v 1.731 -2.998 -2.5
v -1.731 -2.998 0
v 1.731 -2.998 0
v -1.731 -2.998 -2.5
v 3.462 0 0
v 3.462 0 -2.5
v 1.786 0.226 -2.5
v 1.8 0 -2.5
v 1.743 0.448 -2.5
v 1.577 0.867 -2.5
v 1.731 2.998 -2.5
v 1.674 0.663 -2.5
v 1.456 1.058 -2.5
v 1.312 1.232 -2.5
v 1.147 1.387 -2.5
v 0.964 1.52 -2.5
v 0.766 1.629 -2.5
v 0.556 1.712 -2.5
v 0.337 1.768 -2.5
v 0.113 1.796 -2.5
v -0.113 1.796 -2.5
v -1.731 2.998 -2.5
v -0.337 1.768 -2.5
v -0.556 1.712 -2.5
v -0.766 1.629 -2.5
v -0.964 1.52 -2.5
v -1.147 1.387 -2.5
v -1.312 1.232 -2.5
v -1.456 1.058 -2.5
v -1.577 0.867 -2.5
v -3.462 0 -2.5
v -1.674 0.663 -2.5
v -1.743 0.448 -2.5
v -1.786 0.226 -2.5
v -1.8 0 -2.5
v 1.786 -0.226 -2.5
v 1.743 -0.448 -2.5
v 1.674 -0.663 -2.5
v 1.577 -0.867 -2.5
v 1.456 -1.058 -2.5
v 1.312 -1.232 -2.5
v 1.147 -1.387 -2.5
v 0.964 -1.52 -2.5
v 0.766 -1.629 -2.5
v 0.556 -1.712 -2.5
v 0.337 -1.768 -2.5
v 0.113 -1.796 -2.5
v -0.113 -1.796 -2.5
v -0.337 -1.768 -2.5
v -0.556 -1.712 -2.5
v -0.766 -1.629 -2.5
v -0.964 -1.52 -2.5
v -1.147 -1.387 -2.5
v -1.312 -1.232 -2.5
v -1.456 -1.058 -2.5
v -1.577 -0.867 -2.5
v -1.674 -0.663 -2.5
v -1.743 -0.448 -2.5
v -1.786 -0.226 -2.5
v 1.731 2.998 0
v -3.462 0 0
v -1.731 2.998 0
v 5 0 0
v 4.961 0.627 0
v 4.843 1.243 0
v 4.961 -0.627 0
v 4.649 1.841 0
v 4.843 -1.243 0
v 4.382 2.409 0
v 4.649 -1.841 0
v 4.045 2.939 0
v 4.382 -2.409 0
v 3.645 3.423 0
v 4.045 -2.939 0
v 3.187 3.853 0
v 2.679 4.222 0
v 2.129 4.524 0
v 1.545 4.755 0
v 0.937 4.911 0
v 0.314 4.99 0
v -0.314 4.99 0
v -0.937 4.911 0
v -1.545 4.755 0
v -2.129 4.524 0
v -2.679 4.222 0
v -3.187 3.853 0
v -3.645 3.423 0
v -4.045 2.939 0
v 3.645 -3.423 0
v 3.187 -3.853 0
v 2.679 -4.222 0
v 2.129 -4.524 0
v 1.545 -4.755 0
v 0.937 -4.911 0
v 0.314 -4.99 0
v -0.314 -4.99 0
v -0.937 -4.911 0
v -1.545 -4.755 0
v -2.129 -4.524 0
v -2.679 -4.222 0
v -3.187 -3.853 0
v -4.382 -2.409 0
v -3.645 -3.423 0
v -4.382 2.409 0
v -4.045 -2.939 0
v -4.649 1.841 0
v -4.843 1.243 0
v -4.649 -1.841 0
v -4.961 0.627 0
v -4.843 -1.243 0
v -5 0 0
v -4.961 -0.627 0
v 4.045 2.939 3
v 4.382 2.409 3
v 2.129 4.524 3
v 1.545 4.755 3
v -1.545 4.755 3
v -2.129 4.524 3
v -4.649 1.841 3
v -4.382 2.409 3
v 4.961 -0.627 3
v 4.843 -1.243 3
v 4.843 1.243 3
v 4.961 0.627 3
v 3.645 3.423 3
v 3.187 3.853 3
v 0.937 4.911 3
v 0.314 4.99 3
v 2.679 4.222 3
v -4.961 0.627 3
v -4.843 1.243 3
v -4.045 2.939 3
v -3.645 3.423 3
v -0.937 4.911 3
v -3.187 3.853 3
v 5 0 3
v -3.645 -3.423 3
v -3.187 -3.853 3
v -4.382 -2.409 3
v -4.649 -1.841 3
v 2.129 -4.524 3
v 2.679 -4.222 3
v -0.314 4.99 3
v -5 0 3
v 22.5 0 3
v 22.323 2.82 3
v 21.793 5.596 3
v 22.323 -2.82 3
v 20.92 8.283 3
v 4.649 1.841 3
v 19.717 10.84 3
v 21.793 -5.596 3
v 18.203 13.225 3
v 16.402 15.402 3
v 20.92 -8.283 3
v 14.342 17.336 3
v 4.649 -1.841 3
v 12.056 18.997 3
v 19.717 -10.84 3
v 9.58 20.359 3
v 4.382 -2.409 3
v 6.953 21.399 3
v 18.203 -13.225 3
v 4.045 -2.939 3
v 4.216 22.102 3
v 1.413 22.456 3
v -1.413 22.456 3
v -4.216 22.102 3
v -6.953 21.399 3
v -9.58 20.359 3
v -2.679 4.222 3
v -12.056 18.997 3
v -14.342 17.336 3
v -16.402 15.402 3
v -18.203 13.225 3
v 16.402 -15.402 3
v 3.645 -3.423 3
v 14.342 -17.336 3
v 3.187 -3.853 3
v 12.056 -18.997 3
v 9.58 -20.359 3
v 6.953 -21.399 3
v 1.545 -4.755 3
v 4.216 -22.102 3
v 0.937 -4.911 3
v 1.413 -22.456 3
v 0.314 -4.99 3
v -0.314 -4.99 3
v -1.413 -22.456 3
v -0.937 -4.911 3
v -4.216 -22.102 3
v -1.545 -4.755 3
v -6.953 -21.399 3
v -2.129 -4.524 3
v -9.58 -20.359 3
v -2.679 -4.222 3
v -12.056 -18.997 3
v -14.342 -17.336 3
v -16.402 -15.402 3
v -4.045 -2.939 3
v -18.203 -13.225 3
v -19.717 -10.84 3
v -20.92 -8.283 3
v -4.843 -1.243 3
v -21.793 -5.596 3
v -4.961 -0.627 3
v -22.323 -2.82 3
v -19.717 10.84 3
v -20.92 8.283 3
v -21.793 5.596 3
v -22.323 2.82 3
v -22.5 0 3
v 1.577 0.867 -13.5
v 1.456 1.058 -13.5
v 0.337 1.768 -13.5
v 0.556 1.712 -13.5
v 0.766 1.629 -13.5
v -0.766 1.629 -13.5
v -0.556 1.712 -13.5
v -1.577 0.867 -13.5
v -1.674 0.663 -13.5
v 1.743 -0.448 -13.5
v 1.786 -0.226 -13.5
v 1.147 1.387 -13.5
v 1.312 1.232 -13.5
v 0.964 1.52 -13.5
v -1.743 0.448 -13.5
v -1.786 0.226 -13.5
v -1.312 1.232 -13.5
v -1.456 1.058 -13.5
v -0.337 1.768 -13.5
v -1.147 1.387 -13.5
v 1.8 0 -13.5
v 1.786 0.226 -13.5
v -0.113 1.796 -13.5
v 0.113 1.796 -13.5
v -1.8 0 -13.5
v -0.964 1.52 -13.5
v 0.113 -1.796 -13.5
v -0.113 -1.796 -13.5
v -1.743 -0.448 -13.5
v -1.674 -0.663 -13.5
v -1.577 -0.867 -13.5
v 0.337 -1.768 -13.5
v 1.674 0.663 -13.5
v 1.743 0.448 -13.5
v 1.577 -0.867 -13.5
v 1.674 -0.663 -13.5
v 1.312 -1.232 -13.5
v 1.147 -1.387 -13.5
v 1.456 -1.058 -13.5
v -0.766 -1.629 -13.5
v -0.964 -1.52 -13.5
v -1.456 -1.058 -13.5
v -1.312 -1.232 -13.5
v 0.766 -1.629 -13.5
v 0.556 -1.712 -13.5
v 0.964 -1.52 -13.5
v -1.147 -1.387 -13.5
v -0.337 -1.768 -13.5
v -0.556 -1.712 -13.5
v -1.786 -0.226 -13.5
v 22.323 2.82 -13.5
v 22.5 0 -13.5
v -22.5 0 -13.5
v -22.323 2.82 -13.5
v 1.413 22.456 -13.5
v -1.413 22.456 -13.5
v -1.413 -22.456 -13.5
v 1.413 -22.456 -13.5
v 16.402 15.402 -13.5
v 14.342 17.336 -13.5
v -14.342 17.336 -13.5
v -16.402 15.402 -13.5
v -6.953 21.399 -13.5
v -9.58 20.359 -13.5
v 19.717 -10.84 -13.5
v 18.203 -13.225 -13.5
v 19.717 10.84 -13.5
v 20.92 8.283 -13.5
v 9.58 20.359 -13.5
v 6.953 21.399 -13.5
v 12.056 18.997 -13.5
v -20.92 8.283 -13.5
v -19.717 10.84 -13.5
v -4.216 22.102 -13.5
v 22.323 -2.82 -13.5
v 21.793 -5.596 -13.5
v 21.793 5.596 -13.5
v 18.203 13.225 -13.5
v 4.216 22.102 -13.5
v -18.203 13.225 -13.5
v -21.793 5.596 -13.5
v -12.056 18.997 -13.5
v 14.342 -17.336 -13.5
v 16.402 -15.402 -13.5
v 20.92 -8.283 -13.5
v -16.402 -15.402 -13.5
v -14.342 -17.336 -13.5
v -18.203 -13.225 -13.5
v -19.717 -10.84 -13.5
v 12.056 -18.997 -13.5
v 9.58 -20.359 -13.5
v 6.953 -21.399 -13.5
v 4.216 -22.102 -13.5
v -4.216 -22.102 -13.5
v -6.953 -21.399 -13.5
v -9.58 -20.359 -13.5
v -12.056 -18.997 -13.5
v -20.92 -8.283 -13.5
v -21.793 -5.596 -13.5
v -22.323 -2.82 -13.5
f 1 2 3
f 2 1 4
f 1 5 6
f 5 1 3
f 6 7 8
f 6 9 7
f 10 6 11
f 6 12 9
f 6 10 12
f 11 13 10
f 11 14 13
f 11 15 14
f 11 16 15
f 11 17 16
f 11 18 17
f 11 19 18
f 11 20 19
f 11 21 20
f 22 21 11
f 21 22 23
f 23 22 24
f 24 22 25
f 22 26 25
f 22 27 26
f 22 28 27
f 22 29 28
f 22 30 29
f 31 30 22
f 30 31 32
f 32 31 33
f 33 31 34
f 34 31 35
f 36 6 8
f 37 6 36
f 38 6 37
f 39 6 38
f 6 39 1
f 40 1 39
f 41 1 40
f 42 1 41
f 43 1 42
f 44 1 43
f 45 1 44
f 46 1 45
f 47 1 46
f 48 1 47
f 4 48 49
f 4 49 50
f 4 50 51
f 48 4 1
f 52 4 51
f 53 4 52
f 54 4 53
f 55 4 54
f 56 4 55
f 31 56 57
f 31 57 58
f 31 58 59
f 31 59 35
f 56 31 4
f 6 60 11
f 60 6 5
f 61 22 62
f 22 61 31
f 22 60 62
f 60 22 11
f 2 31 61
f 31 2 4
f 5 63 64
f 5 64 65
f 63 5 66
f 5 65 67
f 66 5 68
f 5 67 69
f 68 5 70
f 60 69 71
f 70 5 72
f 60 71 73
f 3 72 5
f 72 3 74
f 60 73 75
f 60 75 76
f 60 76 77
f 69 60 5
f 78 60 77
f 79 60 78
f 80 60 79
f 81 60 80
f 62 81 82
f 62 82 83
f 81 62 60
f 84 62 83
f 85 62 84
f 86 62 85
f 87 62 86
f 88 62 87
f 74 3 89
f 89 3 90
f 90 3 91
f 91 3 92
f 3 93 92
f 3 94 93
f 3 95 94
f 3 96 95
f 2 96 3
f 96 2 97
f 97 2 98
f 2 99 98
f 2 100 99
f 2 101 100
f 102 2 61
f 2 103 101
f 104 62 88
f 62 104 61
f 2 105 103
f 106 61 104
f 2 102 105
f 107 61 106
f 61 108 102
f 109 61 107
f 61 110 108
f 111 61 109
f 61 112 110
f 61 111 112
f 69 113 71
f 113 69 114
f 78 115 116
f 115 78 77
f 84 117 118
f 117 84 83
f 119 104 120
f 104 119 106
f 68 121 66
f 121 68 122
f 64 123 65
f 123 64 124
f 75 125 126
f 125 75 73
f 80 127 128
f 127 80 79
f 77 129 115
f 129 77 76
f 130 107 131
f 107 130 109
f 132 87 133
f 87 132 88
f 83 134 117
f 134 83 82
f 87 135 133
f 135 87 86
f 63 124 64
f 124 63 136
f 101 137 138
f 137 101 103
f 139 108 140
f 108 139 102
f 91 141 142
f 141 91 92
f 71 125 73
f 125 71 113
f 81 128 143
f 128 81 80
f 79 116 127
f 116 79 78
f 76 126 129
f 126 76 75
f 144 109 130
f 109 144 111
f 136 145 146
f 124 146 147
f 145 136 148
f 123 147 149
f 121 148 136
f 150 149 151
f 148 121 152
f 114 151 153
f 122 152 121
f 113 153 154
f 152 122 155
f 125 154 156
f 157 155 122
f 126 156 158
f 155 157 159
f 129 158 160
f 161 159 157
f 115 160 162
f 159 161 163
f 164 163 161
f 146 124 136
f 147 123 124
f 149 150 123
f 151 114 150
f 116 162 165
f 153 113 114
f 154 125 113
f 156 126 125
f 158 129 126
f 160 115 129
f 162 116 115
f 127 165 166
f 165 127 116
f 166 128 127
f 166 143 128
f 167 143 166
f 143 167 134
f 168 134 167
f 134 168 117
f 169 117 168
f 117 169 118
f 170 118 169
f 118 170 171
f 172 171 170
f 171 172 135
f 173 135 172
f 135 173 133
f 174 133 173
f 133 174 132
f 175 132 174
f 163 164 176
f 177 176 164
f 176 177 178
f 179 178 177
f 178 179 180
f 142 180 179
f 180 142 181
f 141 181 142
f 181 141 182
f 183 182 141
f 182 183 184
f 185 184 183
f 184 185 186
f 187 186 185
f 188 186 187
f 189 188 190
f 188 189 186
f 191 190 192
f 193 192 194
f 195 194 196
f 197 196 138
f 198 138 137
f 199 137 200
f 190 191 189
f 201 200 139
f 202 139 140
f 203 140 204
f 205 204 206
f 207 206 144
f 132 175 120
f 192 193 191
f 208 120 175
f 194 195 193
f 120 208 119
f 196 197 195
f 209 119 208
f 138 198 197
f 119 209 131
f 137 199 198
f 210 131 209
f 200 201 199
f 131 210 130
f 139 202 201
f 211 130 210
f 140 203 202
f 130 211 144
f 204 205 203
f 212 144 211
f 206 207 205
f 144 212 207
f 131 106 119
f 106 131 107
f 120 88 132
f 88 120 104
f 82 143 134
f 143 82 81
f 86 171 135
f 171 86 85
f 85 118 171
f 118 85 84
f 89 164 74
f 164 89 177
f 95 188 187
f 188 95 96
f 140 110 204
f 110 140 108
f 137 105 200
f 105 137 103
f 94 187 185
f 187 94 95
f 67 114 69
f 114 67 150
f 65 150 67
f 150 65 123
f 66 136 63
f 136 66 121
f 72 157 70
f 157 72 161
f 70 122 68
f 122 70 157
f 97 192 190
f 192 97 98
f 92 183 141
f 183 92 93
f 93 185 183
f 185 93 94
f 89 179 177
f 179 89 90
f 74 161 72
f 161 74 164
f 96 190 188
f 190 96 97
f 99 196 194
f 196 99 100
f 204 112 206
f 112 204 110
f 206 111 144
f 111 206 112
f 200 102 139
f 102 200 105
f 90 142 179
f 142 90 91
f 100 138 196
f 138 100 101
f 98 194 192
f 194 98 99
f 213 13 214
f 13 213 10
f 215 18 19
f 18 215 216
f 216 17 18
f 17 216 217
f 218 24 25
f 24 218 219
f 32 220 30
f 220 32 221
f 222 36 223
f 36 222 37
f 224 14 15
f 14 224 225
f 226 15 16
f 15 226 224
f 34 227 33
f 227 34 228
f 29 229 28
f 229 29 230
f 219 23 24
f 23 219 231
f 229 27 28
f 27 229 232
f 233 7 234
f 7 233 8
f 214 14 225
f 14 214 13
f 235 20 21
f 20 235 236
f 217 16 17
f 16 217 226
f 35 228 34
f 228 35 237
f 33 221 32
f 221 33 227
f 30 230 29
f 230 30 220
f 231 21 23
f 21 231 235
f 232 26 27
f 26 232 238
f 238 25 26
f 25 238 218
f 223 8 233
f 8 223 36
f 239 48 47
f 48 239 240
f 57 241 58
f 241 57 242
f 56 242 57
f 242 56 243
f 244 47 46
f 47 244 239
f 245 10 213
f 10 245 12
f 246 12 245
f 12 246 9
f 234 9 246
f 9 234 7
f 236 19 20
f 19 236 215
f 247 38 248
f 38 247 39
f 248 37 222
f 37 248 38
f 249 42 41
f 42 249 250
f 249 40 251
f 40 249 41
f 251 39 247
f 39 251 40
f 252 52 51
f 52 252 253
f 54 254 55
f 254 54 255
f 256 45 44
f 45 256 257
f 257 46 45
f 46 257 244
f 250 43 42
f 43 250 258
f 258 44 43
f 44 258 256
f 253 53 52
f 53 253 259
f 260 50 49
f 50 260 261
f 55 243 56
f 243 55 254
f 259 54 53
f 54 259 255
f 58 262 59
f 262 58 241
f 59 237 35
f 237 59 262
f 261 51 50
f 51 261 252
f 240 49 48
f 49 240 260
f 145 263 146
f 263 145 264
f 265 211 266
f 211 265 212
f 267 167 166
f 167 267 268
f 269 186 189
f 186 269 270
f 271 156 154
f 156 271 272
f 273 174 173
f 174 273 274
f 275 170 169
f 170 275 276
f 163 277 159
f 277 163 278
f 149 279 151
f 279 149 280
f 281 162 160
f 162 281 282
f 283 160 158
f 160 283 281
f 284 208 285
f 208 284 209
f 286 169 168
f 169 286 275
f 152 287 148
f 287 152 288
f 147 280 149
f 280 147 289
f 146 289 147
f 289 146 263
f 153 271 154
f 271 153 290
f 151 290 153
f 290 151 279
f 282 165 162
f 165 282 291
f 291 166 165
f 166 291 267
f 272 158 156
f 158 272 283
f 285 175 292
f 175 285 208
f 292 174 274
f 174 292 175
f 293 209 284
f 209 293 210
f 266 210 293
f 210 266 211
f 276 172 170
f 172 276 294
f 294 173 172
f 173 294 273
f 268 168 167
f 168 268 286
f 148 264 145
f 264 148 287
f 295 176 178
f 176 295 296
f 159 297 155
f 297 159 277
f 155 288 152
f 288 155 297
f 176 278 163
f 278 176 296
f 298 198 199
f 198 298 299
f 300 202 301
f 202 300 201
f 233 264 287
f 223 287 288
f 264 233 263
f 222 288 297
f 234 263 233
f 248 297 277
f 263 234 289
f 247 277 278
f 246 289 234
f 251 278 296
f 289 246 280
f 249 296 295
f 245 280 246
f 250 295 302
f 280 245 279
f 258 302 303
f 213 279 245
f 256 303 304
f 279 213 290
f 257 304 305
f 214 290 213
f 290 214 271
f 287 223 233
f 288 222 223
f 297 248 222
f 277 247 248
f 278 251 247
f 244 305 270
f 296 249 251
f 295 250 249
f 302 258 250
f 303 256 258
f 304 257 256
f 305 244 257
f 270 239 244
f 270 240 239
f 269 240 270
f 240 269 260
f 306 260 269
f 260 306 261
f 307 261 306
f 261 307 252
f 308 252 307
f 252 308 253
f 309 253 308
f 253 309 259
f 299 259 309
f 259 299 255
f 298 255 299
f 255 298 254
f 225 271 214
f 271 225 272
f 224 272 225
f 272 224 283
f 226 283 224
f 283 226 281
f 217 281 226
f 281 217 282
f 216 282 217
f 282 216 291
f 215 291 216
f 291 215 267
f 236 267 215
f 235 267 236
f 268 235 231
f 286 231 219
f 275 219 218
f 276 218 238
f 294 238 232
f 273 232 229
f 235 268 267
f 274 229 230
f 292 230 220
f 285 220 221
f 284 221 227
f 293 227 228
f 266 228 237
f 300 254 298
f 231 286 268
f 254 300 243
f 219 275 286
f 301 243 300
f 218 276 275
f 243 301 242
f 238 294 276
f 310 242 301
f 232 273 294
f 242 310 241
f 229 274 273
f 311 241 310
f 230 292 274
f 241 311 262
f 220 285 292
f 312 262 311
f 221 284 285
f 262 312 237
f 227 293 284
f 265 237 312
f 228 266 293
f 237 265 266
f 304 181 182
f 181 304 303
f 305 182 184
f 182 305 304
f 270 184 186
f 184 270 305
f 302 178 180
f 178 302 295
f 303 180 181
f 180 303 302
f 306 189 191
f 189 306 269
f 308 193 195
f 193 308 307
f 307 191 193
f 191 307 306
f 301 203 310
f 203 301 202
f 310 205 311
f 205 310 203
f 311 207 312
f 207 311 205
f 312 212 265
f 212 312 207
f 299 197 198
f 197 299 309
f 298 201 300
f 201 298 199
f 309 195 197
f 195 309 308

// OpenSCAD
$fn = 50;

difference() {
	union() {
		translate(v = [0, 0, -13.5]) {
			cylinder(h = 16.5, r = 22.5);
		}
	}
	union() {
		translate(v = [0, 0, 0]) {
			rotate(a = [0, 0, 0]) {
				difference() {
					union() {
						translate(v = [0, 0, -2.5]) {
							linear_extrude(height = 2.5) {
								polygon(points = [[3.4619999999999997, 0.0], [1.7310000000000003, 2.9981799479017264], [-1.7309999999999992, 2.9981799479017264], [-3.4619999999999997, 4.2397272186481365e-16], [-1.7310000000000014, -2.998179947901726], [1.7309999999999977, -2.9981799479017277]]);
							}
						}
					}
					union();
				}
			}
		}
		#cylinder(h = 3, r = 5.0);
		#translate(v = [0, 0, -100.0]) {
			cylinder(h = 200, r = 1.8);
		}
	}
}
